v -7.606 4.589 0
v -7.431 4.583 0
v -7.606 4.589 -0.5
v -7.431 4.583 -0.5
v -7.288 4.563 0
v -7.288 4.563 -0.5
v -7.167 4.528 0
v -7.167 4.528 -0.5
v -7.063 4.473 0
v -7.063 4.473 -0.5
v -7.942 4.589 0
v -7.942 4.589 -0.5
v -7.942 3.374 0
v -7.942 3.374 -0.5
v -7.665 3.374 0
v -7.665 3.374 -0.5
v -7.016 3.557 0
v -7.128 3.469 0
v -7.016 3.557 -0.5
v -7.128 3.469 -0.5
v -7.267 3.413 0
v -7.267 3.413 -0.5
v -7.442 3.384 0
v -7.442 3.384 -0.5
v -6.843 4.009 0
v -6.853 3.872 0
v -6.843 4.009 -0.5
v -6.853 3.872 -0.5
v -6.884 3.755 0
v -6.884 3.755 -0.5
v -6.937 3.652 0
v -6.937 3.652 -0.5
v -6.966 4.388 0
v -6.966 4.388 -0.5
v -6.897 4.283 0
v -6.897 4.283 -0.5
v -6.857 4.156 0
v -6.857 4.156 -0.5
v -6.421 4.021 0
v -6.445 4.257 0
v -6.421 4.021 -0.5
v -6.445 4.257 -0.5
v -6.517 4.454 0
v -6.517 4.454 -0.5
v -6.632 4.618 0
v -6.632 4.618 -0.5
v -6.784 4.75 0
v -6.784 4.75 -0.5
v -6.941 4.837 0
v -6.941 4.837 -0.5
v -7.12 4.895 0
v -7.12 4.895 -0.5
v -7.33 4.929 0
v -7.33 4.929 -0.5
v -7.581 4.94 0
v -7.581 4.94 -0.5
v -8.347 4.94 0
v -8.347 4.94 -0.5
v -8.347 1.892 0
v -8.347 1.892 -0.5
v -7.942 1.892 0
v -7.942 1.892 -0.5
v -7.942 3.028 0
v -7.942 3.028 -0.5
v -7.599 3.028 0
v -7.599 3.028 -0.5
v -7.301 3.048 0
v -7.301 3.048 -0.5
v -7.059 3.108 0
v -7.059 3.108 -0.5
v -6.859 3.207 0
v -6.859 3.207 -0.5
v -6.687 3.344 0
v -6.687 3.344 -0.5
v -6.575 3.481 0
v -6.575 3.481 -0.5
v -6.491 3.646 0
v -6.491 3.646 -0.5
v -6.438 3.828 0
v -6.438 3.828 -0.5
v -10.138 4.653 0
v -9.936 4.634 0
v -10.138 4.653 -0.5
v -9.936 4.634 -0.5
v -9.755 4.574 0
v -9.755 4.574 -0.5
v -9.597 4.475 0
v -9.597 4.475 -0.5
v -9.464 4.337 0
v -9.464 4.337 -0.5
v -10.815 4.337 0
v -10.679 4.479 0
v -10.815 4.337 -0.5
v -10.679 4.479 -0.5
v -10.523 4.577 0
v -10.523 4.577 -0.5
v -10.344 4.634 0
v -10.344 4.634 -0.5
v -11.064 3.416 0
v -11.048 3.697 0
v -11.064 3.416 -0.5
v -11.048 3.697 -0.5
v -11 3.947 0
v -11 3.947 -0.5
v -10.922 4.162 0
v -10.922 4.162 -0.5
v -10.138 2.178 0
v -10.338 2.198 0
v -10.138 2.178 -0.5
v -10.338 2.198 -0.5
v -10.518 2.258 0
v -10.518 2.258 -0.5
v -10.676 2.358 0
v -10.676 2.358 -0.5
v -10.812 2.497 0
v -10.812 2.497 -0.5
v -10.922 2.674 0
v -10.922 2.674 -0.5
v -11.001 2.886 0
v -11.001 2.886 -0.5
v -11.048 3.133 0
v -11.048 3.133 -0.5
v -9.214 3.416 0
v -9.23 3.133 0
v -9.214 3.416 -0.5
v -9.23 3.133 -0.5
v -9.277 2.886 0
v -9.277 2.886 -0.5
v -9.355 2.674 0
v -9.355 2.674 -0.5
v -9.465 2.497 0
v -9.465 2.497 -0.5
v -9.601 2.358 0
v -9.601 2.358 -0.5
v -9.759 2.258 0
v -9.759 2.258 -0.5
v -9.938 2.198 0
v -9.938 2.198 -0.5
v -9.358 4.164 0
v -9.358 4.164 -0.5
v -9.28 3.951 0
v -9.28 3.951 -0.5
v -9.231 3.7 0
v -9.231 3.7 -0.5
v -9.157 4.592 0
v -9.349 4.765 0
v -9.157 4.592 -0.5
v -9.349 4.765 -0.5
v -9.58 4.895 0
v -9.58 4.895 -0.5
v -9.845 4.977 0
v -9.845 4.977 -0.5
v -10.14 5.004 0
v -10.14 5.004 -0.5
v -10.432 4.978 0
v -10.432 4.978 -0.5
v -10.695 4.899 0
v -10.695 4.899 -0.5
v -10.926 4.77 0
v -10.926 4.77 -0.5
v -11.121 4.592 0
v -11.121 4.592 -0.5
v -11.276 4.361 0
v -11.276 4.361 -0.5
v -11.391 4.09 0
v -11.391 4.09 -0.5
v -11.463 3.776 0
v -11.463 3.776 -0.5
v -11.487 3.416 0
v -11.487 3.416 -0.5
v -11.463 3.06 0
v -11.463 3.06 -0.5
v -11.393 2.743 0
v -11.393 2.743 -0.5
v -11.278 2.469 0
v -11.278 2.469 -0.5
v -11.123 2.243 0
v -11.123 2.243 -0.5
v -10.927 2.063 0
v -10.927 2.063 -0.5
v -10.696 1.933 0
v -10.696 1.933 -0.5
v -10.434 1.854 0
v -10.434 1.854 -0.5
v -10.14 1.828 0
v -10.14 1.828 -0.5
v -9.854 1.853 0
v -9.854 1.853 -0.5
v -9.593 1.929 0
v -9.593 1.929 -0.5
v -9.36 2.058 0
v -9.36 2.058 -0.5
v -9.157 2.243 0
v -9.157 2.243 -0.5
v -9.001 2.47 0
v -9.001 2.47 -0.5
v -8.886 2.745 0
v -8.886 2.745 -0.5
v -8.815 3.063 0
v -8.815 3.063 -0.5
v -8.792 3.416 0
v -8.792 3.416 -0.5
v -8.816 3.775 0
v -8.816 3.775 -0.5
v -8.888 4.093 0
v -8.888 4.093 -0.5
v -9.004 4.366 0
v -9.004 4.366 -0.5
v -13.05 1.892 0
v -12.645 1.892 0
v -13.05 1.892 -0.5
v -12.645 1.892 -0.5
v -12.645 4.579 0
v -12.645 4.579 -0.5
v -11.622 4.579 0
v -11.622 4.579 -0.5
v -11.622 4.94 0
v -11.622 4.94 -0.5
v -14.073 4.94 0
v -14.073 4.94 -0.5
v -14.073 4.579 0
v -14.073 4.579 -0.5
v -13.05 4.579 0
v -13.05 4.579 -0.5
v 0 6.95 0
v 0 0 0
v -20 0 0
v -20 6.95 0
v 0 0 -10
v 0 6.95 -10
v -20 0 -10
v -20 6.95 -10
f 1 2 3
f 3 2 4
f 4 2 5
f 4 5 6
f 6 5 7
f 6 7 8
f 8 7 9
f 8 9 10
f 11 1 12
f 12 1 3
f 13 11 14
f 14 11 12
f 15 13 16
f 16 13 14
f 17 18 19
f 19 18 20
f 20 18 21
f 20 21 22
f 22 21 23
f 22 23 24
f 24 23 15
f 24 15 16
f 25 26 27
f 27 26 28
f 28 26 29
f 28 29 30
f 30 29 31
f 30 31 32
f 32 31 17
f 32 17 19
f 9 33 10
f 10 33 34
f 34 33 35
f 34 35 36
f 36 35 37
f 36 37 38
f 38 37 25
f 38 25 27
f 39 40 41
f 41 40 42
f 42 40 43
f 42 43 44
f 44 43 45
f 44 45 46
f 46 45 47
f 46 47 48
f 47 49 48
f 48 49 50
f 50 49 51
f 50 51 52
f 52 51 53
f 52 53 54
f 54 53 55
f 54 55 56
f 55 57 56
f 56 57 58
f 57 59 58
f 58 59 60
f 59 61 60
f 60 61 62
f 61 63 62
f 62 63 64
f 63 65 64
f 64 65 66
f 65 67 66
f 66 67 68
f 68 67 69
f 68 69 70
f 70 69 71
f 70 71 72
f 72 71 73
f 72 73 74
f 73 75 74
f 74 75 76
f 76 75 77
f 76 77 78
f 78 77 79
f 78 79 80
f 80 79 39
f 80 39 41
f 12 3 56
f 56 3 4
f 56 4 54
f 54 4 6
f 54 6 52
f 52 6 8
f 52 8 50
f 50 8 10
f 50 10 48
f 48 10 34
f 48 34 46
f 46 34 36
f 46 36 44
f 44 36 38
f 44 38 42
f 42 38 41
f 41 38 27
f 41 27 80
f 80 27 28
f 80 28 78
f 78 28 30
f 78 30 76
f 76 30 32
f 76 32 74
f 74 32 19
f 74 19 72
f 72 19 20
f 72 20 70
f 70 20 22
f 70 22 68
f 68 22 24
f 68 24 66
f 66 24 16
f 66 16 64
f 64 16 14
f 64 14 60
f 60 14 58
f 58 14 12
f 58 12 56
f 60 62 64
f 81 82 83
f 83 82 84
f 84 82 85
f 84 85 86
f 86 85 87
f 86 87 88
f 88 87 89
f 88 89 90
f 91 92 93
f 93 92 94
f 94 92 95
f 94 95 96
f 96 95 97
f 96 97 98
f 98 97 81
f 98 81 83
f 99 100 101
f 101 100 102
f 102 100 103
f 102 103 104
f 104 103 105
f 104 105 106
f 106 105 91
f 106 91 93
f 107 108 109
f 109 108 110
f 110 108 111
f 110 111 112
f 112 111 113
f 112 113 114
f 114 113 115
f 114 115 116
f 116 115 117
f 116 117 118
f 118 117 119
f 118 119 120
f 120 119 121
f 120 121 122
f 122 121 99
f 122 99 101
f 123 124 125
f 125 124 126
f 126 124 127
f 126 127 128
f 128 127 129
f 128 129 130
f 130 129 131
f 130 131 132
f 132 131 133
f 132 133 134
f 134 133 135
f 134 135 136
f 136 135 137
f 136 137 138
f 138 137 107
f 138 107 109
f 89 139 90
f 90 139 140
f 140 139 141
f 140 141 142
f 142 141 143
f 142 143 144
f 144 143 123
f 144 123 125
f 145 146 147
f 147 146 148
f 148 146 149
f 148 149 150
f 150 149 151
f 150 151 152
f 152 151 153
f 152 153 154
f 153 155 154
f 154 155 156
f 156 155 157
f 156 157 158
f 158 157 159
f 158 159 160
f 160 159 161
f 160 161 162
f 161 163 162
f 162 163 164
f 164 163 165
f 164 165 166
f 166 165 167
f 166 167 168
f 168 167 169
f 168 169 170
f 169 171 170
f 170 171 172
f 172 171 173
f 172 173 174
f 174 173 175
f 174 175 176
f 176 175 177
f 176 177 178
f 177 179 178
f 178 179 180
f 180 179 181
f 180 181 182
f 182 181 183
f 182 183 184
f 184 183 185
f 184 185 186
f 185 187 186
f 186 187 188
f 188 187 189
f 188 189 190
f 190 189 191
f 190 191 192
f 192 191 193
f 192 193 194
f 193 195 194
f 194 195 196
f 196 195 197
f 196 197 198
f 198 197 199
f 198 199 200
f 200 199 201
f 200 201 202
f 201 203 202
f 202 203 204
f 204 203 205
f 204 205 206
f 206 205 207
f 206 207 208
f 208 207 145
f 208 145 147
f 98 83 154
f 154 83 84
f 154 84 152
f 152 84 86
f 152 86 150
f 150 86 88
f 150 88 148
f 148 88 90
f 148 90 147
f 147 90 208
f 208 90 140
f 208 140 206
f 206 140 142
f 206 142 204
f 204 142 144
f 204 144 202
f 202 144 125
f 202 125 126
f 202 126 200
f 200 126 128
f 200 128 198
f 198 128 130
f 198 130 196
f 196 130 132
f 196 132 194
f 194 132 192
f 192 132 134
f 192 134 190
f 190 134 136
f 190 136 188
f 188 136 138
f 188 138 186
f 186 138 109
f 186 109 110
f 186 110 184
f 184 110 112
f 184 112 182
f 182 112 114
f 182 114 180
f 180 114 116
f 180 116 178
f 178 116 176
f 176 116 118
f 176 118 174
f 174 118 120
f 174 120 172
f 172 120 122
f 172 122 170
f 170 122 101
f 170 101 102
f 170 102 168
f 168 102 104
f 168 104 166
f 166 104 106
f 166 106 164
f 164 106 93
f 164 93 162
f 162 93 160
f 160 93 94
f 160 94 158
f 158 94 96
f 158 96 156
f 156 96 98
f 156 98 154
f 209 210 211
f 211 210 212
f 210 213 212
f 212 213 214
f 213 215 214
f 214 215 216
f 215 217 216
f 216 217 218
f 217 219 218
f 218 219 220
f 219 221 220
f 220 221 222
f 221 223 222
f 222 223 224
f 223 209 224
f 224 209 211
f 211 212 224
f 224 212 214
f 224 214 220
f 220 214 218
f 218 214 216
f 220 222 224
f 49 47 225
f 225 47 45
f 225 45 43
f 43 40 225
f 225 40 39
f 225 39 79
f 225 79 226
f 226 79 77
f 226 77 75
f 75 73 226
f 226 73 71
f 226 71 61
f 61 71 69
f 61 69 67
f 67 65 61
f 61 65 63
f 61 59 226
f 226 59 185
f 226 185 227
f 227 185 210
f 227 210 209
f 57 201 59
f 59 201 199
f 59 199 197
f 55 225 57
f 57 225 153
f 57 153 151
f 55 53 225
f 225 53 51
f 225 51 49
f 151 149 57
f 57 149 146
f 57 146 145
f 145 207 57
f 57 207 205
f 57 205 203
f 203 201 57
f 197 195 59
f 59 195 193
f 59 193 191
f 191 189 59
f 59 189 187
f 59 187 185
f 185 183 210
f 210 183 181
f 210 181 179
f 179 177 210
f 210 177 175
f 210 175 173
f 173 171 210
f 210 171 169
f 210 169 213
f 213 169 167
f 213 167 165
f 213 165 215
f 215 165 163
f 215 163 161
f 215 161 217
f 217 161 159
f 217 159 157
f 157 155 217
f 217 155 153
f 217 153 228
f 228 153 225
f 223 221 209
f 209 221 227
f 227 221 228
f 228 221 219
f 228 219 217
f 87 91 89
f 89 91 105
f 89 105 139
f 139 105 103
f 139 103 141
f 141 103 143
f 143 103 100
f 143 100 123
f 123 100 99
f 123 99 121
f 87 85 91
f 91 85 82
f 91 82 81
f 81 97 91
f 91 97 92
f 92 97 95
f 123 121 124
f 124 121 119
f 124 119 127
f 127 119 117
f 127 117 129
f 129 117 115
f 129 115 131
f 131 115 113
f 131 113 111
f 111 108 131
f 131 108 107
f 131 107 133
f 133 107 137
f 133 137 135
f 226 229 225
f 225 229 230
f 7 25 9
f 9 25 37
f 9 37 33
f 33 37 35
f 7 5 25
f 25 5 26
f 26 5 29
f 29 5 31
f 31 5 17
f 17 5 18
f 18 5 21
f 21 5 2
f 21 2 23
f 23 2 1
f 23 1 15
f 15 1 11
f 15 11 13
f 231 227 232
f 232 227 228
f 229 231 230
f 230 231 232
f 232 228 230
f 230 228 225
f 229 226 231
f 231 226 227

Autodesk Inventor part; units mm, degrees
ref_plane "YZ Plane" through (0, 0, 0) normal (1, 0, 0) x (0, 1, 0)
ref_plane "XZ Plane" through (0, 0, 0) normal (0, 1, 0) x (-1, 0, 0)
ref_plane "XY Plane" through (0, 0, 0) normal (0, 0, 1) x (1, 0, 0)
sketch "Sketch1" plane through (0, 0, 0) normal (0, 1, 0) x (-1, 0, 0)
  line L0 (0, 0) -> (20, 0)
  line L1 (20, 0) -> (20, -10)
  line L2 (20, -10) -> (0, -10)
  line L3 (0, -10) -> (0, 0)
  dimension "d0" = 20
  dimension "d1" = 10
extrude "Extrusion1" add sketch "Sketch1" along normal blind 6.95
sketch "Sketch2" plane through (-20, 0, 0) normal (0, 0, 1) x (1, 0, 0)
  line L0 (5.9298, 5.0041) -> (16.3941, 5.0041) construction
  line L1 (16.3941, 5.0041) -> (16.3941, 1.9722) construction
  line L2 (16.3941, 1.9722) -> (5.9298, 1.9722) construction
  line L3 (5.9298, 1.9722) -> (5.9298, 5.0041) construction
  line L4 (6.9499, 1.8918) -> (6.9499, 4.5792)
  line L5 (6.9499, 4.5792) -> (5.9273, 4.5792)
  line L6 (5.9273, 4.5792) -> (5.9273, 4.9398)
  line L7 (5.9273, 4.9398) -> (8.3776, 4.9398)
  line L8 (8.3776, 4.9398) -> (8.3776, 4.5792)
  line L9 (8.3776, 4.5792) -> (7.355, 4.5792)
  line L10 (7.355, 4.5792) -> (7.355, 1.8918)
  line L11 (7.355, 1.8918) -> (6.9499, 1.8918)
  spline S0 degree 2 poles (10.8426, 4.5916) (11.0155, 4.389) (11.2082, 3.7962) (11.2082, 3.4158) knots 0 0 0 1 2 2 2
  spline S1 degree 2 poles (11.2082, 3.4158) (11.2082, 3.0453) (11.0205, 2.4451) (10.8426, 2.2426) knots 0 0 0 1 2 2 2
  spline S2 degree 2 poles (10.8426, 2.2426) (10.6549, 2.0302) (10.1584, 1.8276) (9.8596, 1.8276) knots 0 0 0 1 2 2 2
  spline S3 degree 2 poles (9.8596, 1.8276) (9.5508, 1.8276) (9.0568, 2.0376) (8.8765, 2.2426) knots 0 0 0 1 2 2 2
  spline S4 degree 2 poles (8.8765, 2.2426) (8.7011, 2.4451) (8.5134, 3.0404) (8.5134, 3.4158) knots 0 0 0 1 2 2 2
  spline S5 degree 2 poles (8.5134, 3.4158) (8.5134, 3.7987) (8.7036, 4.3816) (8.879, 4.5916) knots 0 0 0 1 2 2 2
  spline S6 degree 2 poles (8.879, 4.5916) (9.0568, 4.7941) (9.5533, 5.0041) (9.8596, 5.0041) knots 0 0 0 1 2 2 2
  spline S7 degree 2 poles (9.8596, 5.0041) (10.1708, 5.0041) (10.6697, 4.7867) (10.8426, 4.5916) knots 0 0 0 1 2 2 2
  spline S8 degree 2 poles (10.7858, 3.4158) (10.7858, 3.7172) (10.6549, 4.184) (10.5364, 4.3371) knots 0 0 0 1 2 2 2
  spline S9 degree 2 poles (10.5364, 4.3371) (10.4153, 4.4952) (10.0745, 4.6533) (9.862, 4.6533) knots 0 0 0 1 2 2 2
  spline S10 degree 2 poles (9.862, 4.6533) (9.6422, 4.6533) (9.3112, 4.5002) (9.1853, 4.3371) knots 0 0 0 1 2 2 2
  spline S11 degree 2 poles (9.1853, 4.3371) (9.0642, 4.1815) (8.9358, 3.7122) (8.9358, 3.4158) knots 0 0 0 1 2 2 2
  spline S12 degree 2 poles (8.9358, 3.4158) (8.9358, 2.8156) (9.4397, 2.1784) (9.862, 2.1784) knots 0 0 0 1 2 2 2
  spline S13 degree 2 poles (9.862, 2.1784) (10.2844, 2.1784) (10.7858, 2.8156) (10.7858, 3.4158) knots 0 0 0 1 2 2 2
  spline S14 degree 2 poles (13.5794, 4.021) (13.5794, 3.8234) (13.4386, 3.4677) (13.3127, 3.3442) knots 0 0 0 1 2 2 2
  spline S15 degree 2 poles (13.3127, 3.3442) (13.1546, 3.1886) (12.7273, 3.028) (12.4012, 3.028) knots 0 0 0 1 2 2 2
  line L12 (12.4012, 3.028) -> (12.0579, 3.028)
  line L13 (12.0579, 3.028) -> (12.0579, 1.8918)
  line L14 (12.0579, 1.8918) -> (11.6528, 1.8918)
  line L15 (11.6528, 1.8918) -> (11.6528, 4.9398)
  line L16 (11.6528, 4.9398) -> (12.4185, 4.9398)
  spline S16 degree 2 poles (12.4185, 4.9398) (12.6902, 4.9398) (13.0706, 4.8509) (13.2163, 4.7496) knots 0 0 0 1 2 2 2
  spline S17 degree 2 poles (13.2163, 4.7496) (13.3868, 4.6336) (13.5794, 4.2754) (13.5794, 4.021) knots 0 0 0 1 2 2 2
  spline S18 degree 2 poles (13.157, 4.0086) (13.157, 4.1667) (13.0484, 4.3989) (12.9372, 4.473) knots 0 0 0 1 2 2 2
  spline S19 degree 2 poles (12.9372, 4.473) (12.8409, 4.5372) (12.584, 4.5891) (12.3938, 4.5891) knots 0 0 0 1 2 2 2
  line L17 (12.3938, 4.5891) -> (12.0579, 4.5891)
  line L18 (12.0579, 4.5891) -> (12.0579, 3.3738)
  line L19 (12.0579, 3.3738) -> (12.3345, 3.3738)
  spline S20 degree 2 poles (12.3345, 3.3738) (12.5815, 3.3738) (12.8853, 3.4529) (12.9841, 3.5566) knots 0 0 0 1 2 2 2
  spline S21 degree 2 poles (12.9841, 3.5566) (13.0755, 3.648) (13.157, 3.8629) (13.157, 4.0086) knots 0 0 0 1 2 2 2
  point P0 (20, 0)
extrude "Extrusion3" cut sketch "Sketch2" against normal blind 0.5
properties part number "cable_jig_7.5mm_shim"
